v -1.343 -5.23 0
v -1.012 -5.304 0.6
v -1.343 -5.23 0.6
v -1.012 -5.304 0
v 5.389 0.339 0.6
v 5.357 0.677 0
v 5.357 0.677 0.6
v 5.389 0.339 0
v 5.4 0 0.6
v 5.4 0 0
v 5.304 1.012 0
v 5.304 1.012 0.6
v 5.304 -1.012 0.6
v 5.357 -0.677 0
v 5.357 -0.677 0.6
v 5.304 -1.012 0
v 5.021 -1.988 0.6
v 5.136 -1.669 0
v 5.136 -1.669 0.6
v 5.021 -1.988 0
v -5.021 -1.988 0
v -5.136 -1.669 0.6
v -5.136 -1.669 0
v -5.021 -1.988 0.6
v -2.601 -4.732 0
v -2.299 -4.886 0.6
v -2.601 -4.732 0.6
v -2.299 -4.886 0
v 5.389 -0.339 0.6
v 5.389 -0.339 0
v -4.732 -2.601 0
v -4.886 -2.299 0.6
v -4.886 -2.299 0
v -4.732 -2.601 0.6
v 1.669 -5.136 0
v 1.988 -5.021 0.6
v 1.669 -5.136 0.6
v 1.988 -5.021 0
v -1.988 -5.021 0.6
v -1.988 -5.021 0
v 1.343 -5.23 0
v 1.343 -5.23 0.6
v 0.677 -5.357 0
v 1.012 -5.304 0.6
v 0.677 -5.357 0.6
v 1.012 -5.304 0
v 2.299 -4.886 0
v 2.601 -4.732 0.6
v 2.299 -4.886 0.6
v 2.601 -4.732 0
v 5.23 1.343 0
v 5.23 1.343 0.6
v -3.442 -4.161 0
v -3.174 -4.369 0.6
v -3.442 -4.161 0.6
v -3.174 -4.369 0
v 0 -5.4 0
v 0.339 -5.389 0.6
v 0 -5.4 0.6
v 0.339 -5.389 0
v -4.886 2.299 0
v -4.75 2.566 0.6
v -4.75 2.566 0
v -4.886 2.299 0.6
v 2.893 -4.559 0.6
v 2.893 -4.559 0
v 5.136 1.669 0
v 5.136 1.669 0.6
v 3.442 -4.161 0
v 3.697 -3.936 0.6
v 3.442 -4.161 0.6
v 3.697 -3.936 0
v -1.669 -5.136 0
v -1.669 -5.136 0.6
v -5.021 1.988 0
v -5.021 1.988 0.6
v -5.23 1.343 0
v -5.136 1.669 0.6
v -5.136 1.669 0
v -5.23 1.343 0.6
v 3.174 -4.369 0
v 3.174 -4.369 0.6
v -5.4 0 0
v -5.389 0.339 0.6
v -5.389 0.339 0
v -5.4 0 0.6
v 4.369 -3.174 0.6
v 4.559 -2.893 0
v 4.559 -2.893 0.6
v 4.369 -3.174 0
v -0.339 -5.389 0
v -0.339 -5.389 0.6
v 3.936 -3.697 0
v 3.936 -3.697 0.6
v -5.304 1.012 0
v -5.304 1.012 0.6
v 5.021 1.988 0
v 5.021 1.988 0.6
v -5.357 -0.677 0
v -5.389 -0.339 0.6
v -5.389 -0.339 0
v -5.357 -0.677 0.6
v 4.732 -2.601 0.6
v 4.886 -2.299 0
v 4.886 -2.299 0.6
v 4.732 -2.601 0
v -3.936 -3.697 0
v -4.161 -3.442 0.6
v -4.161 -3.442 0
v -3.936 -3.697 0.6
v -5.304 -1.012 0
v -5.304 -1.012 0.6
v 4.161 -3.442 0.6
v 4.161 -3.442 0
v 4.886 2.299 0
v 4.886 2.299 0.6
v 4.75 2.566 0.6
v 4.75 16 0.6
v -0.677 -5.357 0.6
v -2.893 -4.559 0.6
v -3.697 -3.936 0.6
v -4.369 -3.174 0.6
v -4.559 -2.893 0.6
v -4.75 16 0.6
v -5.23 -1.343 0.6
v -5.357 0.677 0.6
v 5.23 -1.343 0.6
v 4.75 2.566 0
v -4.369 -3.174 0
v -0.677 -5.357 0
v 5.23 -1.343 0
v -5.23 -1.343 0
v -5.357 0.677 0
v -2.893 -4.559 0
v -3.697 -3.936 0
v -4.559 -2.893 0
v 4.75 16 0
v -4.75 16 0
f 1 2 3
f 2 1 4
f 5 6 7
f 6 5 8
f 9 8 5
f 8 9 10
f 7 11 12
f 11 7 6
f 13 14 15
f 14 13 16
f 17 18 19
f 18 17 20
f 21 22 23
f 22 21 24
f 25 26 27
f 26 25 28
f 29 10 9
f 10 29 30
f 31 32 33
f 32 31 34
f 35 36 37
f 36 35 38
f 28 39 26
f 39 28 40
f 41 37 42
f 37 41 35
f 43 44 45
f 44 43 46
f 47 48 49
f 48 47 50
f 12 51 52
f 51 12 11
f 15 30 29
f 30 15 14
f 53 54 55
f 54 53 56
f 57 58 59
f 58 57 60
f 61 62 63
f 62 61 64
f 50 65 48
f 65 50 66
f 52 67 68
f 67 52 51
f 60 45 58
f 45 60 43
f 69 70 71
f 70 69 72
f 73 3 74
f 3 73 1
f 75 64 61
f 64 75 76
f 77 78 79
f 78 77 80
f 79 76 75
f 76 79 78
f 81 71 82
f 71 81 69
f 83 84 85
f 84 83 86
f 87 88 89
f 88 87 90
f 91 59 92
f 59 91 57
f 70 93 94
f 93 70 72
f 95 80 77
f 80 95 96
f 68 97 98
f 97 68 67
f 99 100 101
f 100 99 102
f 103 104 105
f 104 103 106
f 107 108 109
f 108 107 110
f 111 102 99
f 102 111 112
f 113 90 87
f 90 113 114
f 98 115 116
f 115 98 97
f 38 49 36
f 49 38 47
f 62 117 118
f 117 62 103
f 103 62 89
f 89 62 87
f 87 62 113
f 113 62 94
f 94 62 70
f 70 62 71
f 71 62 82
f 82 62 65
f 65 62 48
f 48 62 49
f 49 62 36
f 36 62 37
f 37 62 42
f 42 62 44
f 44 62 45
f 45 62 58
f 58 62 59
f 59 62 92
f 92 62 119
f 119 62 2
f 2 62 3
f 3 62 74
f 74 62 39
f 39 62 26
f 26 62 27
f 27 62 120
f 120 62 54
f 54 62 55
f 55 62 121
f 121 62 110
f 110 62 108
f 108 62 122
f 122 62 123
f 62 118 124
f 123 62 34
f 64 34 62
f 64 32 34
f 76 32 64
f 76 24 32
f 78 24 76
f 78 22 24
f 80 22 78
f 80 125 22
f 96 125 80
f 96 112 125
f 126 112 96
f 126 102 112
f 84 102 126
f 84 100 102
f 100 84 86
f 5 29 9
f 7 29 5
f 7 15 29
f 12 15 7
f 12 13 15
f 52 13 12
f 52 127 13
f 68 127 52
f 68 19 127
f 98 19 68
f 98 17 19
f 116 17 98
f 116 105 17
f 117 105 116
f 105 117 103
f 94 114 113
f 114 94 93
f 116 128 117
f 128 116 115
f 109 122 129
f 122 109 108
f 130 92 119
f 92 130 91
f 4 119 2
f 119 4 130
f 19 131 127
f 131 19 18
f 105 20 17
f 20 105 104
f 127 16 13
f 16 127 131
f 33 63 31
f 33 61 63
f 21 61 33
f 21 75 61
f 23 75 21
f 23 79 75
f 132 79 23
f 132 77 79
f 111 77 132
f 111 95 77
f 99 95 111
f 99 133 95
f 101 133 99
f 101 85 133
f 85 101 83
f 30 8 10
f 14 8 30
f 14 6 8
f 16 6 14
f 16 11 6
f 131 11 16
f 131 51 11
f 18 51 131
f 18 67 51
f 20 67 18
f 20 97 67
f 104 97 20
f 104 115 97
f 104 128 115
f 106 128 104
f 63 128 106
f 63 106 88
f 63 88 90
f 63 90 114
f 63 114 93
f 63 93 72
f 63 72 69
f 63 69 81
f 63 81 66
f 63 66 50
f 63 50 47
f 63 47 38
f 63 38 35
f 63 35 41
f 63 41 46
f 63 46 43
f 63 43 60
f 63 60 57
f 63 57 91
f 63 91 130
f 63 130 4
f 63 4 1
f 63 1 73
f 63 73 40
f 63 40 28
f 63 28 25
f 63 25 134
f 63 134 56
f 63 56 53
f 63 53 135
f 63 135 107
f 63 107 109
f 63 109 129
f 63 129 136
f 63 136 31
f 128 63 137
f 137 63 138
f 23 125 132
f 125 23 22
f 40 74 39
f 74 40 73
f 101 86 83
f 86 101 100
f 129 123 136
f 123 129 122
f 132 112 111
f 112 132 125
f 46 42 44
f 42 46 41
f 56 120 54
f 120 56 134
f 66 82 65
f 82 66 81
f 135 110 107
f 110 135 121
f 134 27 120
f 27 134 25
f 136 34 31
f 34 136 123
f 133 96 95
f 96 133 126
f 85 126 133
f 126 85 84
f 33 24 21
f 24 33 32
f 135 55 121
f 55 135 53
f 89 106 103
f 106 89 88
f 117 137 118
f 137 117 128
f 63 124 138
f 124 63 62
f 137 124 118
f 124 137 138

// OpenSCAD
// =============================================================================
// PROGETTO: TAPPO / SLITTA DI COPERTURA TESTA VITE
// Si inserisce a scorrimento nel canale dopo aver messo la clip a C.
// Copre completamente la testa della vite e la clip, proteggendo il tavolo al 100%.
// =============================================================================

$fn = 100;

// Larghezza della slitta (leggermente inferiore ai 9.8mm del canale per scorrere liscia)
larghezza_slitta = 9.5;

// Diametro della testa tonda della slitta (leggermente inferiore agli 11.2mm della tasca)
diametro_testa = 10.8;

// Lunghezza totale della slitta
lunghezza_slitta = 16.0;

// Spessore del coperchietto (0.6mm = 3 layer da 0.2mm, flessibile, resistente e sottilissimo)
spessore_coperchio = 0.6;

module tappo_slitta() {
    union() {
        // Testa rotonda che copre la tasca centrale e la testa della vite
        cylinder(h = spessore_coperchio, d = diametro_testa);
        
        // Coda rettangolare che riempie il canale d'ingresso
        translate([-larghezza_slitta / 2, 0, 0])
            cube([larghezza_slitta, lunghezza_slitta, spessore_coperchio]);
    }
}

tappo_slitta();
